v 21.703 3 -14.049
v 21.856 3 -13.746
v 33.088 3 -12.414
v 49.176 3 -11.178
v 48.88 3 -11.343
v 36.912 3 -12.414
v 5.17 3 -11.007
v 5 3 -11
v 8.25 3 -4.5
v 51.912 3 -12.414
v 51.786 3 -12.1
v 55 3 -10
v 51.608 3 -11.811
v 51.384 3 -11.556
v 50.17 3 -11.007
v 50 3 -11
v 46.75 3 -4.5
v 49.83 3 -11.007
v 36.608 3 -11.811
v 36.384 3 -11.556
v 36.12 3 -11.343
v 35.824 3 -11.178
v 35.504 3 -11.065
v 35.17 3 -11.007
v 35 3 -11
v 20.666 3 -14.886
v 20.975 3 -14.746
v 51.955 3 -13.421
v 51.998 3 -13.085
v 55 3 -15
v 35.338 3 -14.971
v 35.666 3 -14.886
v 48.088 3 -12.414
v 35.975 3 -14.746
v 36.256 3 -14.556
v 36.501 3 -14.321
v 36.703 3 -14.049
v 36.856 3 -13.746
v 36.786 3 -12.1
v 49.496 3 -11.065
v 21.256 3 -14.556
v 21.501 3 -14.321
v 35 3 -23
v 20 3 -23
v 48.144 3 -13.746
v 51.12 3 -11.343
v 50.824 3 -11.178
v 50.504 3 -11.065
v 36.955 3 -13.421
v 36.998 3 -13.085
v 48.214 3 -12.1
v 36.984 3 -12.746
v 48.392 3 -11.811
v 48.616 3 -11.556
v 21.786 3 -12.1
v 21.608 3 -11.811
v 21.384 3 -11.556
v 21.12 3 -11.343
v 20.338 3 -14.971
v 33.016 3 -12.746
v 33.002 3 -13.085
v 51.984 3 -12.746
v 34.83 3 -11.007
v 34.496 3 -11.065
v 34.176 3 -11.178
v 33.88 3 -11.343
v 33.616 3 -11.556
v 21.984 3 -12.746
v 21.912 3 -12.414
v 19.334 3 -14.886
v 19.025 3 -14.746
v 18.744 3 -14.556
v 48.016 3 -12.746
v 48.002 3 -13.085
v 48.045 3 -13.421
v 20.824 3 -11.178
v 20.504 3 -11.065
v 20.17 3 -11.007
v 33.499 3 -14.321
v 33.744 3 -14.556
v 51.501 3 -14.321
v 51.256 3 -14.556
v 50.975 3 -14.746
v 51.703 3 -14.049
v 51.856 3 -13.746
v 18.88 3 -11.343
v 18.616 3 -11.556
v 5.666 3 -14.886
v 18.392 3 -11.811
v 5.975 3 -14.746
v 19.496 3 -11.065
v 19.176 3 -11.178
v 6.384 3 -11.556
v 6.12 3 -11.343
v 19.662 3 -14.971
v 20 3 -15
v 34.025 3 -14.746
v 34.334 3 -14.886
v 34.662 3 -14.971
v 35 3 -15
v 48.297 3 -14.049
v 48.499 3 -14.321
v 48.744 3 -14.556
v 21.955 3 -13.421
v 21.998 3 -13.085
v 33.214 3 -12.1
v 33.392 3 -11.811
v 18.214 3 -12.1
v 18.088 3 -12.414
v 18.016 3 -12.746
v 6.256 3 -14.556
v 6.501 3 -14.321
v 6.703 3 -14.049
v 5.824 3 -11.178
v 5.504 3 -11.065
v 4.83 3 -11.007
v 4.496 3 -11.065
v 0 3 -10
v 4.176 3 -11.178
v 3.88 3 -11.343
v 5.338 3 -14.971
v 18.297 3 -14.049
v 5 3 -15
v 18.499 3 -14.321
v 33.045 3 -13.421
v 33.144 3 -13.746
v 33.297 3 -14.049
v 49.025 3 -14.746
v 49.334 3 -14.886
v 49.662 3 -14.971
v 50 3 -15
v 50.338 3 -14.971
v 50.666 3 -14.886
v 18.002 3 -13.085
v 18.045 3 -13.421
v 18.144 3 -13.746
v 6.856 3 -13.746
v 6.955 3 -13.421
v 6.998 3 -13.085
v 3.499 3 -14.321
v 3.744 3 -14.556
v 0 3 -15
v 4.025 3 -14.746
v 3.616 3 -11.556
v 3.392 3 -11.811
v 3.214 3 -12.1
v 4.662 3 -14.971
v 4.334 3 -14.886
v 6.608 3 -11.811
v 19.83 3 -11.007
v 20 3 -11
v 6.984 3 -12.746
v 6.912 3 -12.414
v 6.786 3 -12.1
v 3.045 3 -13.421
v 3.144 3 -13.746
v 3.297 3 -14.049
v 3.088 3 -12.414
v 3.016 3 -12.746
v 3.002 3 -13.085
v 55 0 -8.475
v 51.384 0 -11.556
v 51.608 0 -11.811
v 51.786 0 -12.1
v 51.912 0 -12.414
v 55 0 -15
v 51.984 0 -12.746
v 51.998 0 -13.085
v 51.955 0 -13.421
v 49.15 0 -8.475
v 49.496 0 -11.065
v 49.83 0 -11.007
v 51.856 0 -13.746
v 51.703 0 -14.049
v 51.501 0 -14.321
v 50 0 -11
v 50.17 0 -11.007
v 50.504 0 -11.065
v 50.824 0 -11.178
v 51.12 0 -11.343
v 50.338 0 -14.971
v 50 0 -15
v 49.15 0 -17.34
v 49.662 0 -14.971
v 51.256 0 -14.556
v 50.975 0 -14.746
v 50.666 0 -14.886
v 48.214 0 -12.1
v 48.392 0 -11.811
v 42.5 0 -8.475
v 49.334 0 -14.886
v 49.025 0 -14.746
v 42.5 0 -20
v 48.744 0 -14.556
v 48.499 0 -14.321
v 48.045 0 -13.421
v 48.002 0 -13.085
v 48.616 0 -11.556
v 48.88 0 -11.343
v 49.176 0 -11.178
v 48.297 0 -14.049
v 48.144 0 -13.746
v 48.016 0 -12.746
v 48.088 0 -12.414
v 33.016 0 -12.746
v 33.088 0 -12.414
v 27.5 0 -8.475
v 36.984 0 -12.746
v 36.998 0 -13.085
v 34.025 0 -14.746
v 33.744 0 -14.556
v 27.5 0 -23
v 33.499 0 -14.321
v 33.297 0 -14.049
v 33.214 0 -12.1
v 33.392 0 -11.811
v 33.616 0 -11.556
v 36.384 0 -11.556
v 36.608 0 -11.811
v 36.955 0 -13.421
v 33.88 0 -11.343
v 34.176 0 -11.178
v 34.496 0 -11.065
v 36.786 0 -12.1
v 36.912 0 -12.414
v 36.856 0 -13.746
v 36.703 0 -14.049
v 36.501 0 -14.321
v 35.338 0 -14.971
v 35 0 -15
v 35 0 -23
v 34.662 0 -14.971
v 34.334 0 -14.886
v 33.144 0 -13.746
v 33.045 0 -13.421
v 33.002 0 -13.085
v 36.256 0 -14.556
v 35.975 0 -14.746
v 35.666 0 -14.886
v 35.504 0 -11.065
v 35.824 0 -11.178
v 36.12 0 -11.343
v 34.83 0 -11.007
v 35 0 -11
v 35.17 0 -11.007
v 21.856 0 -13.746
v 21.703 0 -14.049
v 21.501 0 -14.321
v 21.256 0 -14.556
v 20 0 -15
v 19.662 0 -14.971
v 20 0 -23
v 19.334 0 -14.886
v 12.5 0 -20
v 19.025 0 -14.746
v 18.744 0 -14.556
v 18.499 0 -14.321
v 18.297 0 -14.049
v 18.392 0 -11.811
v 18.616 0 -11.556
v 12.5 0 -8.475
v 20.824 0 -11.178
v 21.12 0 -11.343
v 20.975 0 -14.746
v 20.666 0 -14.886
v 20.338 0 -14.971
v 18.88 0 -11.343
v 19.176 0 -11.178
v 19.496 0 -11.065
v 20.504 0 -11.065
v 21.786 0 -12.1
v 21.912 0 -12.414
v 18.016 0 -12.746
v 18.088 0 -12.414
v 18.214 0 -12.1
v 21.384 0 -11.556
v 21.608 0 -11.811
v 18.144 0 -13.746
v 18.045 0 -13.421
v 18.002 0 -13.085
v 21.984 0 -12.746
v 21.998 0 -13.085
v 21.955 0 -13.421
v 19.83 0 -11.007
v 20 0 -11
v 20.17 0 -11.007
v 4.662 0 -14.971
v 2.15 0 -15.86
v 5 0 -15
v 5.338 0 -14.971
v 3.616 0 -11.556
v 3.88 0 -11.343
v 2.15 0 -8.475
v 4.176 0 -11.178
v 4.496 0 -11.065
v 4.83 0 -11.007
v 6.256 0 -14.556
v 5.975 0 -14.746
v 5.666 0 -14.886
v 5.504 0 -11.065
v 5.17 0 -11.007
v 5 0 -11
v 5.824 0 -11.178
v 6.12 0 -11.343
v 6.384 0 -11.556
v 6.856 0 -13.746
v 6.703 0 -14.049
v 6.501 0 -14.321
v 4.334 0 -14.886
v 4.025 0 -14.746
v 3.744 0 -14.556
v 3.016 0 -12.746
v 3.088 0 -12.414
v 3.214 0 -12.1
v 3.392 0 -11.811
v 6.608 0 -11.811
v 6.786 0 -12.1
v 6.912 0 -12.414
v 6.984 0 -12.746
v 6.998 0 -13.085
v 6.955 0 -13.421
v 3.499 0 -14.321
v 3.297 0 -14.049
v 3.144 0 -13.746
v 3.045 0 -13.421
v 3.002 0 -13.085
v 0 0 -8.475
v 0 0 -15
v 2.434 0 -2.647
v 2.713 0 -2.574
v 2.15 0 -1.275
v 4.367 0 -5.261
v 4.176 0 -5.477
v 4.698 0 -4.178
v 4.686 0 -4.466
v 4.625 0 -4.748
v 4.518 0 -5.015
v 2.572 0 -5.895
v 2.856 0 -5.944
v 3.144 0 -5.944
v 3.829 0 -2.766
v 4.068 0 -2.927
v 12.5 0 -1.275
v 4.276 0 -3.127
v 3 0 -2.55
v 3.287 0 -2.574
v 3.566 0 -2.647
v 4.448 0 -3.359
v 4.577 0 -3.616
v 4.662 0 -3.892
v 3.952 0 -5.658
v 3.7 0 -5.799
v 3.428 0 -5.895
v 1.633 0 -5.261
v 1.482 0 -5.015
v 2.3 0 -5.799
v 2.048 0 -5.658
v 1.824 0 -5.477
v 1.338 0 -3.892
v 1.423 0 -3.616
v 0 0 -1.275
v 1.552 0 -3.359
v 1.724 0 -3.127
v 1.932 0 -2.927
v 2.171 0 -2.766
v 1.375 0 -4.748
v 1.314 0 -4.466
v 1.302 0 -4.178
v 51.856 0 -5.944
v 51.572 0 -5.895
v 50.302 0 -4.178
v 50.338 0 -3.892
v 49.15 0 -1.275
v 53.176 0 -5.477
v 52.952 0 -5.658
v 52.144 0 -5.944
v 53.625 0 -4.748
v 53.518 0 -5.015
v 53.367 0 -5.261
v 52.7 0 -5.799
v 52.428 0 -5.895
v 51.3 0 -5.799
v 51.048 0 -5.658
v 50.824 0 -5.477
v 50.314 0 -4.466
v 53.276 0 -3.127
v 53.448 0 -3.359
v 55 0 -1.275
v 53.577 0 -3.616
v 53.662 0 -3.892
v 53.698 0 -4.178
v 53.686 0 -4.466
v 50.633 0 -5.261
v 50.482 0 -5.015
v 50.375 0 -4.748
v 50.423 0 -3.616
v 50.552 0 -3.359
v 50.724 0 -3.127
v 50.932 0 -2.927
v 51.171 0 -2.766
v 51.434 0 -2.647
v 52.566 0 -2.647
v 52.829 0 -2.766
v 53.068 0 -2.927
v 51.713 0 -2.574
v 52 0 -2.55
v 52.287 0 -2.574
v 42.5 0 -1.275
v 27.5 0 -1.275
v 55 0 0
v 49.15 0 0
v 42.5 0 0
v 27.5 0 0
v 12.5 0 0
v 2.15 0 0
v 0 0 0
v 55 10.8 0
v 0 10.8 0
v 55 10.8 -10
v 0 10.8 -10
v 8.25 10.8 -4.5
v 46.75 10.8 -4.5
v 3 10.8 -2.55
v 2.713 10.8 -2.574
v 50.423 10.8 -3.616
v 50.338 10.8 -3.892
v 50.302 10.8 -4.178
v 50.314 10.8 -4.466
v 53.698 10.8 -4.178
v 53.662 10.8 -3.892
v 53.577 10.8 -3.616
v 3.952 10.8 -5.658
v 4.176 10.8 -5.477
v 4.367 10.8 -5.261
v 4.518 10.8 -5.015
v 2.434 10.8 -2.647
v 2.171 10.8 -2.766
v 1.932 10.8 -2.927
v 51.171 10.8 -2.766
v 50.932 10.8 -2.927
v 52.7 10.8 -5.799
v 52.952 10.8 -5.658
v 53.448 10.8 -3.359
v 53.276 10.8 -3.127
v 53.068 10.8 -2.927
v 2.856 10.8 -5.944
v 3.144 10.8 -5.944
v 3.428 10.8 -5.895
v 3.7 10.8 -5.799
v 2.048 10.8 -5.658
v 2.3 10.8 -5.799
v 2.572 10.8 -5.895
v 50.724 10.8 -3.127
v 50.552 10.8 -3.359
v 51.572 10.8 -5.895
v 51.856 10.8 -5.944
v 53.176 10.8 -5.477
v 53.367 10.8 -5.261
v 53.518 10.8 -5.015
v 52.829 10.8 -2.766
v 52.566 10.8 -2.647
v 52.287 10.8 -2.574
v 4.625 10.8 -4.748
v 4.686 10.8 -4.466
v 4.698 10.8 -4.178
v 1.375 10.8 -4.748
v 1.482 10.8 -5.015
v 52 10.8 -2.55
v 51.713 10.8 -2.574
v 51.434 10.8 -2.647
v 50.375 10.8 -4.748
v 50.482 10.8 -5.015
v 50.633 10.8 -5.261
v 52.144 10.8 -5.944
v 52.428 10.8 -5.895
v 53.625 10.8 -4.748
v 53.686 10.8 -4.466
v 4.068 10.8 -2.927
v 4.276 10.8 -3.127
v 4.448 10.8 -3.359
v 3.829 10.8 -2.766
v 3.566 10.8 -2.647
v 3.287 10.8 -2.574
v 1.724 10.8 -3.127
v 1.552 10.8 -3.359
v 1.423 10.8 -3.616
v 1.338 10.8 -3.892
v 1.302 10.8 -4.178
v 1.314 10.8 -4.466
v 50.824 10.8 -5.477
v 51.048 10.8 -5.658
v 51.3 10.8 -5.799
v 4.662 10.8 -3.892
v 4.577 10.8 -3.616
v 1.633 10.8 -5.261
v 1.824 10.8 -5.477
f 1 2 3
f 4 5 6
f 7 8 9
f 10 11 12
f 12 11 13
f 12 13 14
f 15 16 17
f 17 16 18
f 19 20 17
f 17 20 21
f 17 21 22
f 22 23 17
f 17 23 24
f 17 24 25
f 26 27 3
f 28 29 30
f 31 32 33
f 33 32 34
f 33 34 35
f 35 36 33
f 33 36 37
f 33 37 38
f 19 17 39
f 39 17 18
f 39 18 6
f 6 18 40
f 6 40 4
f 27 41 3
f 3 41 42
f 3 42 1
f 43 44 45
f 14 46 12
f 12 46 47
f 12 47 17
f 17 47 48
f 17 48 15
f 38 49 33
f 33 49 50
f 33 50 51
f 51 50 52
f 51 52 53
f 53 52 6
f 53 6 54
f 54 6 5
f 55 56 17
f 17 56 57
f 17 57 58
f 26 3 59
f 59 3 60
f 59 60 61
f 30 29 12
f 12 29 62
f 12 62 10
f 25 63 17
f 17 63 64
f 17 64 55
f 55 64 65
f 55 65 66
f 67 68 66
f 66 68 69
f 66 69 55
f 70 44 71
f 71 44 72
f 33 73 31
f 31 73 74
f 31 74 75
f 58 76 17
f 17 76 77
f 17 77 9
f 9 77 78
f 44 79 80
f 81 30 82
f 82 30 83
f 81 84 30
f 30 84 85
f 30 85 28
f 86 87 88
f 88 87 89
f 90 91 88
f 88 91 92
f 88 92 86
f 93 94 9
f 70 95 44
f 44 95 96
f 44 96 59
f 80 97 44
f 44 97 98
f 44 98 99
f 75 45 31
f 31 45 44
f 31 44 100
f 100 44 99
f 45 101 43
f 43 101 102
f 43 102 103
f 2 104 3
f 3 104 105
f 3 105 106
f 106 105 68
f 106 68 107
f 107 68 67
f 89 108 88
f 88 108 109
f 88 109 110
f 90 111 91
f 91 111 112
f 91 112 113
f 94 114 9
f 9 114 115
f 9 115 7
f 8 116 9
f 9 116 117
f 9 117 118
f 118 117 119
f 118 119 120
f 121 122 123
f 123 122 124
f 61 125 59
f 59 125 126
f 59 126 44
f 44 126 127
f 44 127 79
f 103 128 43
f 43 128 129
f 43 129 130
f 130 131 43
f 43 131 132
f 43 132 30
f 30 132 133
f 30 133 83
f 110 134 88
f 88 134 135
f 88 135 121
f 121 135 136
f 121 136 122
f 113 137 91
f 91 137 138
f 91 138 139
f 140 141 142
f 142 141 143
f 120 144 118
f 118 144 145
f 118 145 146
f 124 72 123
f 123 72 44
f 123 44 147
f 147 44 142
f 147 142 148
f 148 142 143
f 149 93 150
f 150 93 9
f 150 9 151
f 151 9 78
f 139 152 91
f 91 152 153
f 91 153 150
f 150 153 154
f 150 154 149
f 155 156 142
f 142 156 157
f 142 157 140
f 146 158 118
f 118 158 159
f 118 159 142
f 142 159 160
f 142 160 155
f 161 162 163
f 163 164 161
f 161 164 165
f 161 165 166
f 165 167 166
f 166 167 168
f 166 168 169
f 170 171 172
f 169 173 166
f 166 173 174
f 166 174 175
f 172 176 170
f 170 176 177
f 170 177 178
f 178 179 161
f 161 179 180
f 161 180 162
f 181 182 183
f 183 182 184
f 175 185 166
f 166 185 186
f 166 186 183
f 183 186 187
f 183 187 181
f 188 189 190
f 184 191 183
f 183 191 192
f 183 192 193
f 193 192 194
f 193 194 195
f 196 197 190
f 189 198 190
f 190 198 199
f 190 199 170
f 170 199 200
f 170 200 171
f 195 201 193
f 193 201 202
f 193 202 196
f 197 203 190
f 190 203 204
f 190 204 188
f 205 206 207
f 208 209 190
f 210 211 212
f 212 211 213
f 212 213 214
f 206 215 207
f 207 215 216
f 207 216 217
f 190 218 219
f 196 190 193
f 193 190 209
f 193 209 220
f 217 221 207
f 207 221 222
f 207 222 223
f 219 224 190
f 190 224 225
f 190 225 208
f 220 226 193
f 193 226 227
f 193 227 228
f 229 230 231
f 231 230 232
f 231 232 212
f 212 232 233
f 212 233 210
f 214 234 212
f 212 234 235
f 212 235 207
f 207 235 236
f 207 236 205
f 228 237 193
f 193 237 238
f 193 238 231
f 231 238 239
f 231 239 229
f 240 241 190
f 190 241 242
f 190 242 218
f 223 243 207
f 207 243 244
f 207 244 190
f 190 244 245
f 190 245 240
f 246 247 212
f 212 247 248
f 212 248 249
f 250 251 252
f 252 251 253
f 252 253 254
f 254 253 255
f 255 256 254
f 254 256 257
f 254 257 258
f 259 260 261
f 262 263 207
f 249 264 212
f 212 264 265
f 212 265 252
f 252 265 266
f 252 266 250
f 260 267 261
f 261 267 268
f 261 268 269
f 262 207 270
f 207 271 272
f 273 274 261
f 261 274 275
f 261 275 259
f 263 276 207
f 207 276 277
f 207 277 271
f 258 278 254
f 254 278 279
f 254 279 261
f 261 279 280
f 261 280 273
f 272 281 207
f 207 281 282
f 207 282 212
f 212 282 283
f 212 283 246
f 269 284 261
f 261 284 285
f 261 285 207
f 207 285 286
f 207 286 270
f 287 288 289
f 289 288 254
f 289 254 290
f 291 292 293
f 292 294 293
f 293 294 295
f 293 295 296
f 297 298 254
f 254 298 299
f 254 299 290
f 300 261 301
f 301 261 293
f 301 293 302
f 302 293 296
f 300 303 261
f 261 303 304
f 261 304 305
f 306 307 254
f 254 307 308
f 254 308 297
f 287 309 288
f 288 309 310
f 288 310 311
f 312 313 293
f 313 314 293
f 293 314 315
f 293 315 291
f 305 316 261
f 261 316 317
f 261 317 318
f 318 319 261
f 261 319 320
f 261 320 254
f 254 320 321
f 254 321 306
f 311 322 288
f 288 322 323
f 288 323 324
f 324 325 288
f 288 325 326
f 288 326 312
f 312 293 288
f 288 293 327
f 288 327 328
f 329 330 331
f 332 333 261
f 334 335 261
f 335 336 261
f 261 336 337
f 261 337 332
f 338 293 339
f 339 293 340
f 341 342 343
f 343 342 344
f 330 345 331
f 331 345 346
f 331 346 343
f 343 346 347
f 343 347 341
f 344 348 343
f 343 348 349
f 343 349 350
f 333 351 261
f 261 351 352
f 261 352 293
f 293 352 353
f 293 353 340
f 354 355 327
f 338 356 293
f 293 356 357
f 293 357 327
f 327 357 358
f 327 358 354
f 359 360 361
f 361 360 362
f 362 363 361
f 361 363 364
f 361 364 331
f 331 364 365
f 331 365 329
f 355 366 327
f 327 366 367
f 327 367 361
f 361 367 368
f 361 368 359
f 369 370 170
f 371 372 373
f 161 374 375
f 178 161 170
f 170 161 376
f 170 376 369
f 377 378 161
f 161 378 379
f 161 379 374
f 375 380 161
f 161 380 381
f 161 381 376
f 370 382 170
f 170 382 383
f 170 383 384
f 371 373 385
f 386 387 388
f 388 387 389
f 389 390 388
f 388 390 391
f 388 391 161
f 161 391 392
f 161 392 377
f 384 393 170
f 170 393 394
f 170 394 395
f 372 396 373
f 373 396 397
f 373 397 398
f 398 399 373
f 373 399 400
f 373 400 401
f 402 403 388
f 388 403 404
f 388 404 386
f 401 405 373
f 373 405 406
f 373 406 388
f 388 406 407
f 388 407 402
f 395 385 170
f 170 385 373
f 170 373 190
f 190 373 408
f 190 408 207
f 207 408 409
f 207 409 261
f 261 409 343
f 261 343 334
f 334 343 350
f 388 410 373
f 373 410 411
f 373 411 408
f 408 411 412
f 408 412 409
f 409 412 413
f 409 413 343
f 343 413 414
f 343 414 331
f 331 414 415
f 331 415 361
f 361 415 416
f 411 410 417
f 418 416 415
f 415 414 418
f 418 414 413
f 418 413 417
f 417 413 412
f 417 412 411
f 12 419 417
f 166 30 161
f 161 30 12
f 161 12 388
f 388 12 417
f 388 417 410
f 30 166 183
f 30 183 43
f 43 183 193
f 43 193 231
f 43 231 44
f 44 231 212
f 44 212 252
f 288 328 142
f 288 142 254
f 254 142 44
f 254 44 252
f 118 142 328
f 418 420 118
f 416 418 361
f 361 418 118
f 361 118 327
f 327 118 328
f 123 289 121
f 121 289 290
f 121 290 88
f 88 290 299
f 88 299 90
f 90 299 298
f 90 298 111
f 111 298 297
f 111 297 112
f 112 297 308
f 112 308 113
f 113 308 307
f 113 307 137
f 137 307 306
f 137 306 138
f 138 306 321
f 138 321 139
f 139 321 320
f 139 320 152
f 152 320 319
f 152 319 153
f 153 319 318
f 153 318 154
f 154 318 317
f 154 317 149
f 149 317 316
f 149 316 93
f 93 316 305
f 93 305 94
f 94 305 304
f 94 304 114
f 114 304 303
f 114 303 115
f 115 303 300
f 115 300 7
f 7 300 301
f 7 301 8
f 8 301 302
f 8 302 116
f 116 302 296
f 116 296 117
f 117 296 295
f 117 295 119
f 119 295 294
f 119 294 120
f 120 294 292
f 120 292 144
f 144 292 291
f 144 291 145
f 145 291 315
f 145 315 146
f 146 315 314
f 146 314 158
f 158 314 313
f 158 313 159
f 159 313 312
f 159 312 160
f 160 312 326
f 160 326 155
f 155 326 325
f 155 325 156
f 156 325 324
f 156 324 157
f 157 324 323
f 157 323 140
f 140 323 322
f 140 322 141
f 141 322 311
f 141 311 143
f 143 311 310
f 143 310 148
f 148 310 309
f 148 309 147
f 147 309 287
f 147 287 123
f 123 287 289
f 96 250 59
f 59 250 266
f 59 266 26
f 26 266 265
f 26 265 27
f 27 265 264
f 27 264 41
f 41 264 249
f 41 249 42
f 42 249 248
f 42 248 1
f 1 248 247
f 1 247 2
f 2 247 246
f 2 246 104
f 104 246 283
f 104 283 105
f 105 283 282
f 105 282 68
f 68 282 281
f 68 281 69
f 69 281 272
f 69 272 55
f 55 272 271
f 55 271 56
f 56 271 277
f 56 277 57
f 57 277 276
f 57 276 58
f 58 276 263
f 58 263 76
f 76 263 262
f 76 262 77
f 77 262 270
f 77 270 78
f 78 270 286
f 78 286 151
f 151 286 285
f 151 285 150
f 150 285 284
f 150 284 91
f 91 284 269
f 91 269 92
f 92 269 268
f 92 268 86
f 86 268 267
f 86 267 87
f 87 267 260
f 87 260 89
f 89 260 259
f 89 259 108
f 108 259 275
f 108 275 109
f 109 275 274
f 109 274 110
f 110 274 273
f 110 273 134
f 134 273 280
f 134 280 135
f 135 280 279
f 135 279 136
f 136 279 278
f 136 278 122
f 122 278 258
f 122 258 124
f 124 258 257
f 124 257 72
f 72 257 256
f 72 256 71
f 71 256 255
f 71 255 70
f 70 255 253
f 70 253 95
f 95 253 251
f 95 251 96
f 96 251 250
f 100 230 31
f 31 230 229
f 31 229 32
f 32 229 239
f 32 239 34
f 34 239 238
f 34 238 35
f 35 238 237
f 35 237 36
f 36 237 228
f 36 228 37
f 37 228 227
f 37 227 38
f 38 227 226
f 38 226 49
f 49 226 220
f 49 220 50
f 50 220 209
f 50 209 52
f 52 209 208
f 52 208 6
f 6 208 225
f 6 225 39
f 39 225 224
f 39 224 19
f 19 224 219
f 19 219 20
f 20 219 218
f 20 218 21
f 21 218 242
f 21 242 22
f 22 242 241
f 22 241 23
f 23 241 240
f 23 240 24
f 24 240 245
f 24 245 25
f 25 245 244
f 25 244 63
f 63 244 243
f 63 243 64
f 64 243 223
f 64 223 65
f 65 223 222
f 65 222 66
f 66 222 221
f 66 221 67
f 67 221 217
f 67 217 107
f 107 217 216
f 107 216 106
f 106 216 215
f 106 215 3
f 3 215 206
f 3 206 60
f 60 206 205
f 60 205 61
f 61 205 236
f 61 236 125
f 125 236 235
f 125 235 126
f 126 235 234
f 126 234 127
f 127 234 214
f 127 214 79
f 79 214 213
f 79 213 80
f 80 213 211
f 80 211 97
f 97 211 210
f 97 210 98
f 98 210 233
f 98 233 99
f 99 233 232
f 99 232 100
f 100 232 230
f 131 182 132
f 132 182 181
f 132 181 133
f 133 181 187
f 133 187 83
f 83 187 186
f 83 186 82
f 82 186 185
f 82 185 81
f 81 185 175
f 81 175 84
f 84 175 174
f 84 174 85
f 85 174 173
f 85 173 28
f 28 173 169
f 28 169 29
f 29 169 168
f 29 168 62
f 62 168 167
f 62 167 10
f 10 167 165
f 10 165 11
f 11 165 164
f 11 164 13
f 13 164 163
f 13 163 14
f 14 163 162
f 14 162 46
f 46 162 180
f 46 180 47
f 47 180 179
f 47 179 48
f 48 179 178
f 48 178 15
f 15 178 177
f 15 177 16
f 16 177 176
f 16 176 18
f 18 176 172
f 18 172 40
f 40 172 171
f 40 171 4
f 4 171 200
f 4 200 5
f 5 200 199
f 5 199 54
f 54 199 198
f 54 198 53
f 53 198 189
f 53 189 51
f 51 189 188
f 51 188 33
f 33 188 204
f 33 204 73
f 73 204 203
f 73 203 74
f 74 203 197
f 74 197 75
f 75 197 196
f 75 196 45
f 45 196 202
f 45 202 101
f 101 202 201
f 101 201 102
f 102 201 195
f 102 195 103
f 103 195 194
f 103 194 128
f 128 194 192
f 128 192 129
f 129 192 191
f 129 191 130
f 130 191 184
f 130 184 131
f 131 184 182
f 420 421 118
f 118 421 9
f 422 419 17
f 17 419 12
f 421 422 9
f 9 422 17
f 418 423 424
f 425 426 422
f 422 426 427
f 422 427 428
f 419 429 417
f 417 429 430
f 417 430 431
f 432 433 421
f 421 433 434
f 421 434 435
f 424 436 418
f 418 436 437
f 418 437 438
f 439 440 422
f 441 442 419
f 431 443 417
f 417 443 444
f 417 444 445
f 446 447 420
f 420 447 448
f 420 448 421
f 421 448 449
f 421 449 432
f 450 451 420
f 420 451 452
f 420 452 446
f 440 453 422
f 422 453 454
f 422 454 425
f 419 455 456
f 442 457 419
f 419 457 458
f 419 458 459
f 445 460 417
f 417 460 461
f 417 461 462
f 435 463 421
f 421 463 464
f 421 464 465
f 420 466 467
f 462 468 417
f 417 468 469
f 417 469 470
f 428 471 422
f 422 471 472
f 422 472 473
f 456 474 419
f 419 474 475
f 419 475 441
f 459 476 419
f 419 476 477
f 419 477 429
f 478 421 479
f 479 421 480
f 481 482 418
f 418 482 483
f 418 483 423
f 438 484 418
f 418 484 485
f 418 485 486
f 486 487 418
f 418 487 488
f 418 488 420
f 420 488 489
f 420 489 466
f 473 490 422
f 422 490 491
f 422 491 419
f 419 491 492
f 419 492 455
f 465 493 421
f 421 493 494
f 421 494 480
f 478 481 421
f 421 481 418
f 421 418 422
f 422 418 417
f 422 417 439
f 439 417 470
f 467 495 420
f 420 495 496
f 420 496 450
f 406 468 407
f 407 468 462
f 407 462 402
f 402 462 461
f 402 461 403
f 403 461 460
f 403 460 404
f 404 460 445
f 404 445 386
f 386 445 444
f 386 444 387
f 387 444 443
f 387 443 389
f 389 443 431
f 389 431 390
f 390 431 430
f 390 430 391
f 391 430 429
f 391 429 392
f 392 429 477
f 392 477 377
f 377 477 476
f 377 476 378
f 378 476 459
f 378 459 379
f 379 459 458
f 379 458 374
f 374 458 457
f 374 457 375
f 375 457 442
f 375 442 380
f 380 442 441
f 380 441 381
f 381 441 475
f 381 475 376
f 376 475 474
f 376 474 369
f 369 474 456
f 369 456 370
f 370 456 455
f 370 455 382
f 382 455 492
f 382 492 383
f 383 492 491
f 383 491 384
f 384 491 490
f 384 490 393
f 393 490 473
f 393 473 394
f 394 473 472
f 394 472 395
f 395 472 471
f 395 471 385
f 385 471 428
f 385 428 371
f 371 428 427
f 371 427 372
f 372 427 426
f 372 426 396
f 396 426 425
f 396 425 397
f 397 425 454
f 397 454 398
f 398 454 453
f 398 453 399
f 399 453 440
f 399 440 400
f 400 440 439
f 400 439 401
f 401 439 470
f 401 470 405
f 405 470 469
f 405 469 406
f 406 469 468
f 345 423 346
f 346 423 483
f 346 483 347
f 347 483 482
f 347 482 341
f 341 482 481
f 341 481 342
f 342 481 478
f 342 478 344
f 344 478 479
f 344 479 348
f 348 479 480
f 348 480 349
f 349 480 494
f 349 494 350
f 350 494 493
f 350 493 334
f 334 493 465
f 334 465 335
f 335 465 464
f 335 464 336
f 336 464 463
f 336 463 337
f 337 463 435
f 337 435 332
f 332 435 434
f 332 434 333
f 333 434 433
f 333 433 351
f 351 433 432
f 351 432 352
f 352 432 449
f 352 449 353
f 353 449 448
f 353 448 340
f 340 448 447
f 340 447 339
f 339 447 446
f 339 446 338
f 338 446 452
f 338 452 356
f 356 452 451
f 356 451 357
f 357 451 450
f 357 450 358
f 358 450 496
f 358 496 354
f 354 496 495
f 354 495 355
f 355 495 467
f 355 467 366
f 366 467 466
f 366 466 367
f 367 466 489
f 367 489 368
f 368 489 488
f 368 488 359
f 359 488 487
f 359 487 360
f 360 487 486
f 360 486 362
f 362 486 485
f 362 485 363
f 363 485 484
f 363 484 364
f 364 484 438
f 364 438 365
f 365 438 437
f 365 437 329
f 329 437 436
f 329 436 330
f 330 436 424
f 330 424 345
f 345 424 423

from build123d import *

# Parameters (mm, degrees)
SKETCH2_R           = 2
BOSS_EXTRUDE1_DEPTH = 3
BOSS_EXTRUDE2_DEPTH = 7.8
SKETCH4_R           = 1.7
CUT_EXTRUDE1_DEPTH  = 61.585806919


with BuildPart() as part:
    # Sketch2 → Boss-Extrude1 (new body)
    with BuildSketch(Plane(origin=(0, 0, 0), x_dir=(1, 0, 0), z_dir=(0, 1, 0))):
        Polygon((0, 0), (0, 15), (20, 23), (35, 23), (55, 15), (55, 0), align=None)
        with Locations(Location((5, 13, 0), (0, 0, 270))):
            Circle(SKETCH2_R, mode=Mode.SUBTRACT)
        with Locations(Location((20, 13, 0), (0, 0, 270))):
            Circle(SKETCH2_R, mode=Mode.SUBTRACT)
        with Locations(Location((35, 13, 0), (0, 0, 270))):
            Circle(SKETCH2_R, mode=Mode.SUBTRACT)
        with Locations(Location((50, 13, 0), (0, 0, 270))):
            Circle(SKETCH2_R, mode=Mode.SUBTRACT)
    extrude(amount=BOSS_EXTRUDE1_DEPTH)

    # Sketch3 → Boss-Extrude2 (add)
    with BuildSketch(Plane(origin=(0, 3, 0), x_dir=(1, 0, 0), z_dir=(0, 1, 0))):
        Polygon((0, 10), (0, 0), (15, 0), (8.25, 4.5), align=None)
        Polygon((8.25, 4.5), (15, 0), (40, 0), (46.75, 4.5), align=None)
        Polygon((46.75, 4.5), (40, 0), (55, 0), (55, 10), align=None)
    extrude(amount=BOSS_EXTRUDE2_DEPTH)

    # Sketch4 → Cut-Extrude1 (cut, through all)
    with BuildSketch(Plane(origin=(0, 10.8, 0), x_dir=(1, 0, 0), z_dir=(0, 1, 0))):
        with Locations(Location((3, 4.25, 0), (0, 0, 270))):
            Circle(SKETCH4_R)
        with Locations(Location((52, 4.25, 0), (0, 0, 270))):
            Circle(SKETCH4_R)
    extrude(amount=-CUT_EXTRUDE1_DEPTH, mode=Mode.SUBTRACT)


solid = part.part
